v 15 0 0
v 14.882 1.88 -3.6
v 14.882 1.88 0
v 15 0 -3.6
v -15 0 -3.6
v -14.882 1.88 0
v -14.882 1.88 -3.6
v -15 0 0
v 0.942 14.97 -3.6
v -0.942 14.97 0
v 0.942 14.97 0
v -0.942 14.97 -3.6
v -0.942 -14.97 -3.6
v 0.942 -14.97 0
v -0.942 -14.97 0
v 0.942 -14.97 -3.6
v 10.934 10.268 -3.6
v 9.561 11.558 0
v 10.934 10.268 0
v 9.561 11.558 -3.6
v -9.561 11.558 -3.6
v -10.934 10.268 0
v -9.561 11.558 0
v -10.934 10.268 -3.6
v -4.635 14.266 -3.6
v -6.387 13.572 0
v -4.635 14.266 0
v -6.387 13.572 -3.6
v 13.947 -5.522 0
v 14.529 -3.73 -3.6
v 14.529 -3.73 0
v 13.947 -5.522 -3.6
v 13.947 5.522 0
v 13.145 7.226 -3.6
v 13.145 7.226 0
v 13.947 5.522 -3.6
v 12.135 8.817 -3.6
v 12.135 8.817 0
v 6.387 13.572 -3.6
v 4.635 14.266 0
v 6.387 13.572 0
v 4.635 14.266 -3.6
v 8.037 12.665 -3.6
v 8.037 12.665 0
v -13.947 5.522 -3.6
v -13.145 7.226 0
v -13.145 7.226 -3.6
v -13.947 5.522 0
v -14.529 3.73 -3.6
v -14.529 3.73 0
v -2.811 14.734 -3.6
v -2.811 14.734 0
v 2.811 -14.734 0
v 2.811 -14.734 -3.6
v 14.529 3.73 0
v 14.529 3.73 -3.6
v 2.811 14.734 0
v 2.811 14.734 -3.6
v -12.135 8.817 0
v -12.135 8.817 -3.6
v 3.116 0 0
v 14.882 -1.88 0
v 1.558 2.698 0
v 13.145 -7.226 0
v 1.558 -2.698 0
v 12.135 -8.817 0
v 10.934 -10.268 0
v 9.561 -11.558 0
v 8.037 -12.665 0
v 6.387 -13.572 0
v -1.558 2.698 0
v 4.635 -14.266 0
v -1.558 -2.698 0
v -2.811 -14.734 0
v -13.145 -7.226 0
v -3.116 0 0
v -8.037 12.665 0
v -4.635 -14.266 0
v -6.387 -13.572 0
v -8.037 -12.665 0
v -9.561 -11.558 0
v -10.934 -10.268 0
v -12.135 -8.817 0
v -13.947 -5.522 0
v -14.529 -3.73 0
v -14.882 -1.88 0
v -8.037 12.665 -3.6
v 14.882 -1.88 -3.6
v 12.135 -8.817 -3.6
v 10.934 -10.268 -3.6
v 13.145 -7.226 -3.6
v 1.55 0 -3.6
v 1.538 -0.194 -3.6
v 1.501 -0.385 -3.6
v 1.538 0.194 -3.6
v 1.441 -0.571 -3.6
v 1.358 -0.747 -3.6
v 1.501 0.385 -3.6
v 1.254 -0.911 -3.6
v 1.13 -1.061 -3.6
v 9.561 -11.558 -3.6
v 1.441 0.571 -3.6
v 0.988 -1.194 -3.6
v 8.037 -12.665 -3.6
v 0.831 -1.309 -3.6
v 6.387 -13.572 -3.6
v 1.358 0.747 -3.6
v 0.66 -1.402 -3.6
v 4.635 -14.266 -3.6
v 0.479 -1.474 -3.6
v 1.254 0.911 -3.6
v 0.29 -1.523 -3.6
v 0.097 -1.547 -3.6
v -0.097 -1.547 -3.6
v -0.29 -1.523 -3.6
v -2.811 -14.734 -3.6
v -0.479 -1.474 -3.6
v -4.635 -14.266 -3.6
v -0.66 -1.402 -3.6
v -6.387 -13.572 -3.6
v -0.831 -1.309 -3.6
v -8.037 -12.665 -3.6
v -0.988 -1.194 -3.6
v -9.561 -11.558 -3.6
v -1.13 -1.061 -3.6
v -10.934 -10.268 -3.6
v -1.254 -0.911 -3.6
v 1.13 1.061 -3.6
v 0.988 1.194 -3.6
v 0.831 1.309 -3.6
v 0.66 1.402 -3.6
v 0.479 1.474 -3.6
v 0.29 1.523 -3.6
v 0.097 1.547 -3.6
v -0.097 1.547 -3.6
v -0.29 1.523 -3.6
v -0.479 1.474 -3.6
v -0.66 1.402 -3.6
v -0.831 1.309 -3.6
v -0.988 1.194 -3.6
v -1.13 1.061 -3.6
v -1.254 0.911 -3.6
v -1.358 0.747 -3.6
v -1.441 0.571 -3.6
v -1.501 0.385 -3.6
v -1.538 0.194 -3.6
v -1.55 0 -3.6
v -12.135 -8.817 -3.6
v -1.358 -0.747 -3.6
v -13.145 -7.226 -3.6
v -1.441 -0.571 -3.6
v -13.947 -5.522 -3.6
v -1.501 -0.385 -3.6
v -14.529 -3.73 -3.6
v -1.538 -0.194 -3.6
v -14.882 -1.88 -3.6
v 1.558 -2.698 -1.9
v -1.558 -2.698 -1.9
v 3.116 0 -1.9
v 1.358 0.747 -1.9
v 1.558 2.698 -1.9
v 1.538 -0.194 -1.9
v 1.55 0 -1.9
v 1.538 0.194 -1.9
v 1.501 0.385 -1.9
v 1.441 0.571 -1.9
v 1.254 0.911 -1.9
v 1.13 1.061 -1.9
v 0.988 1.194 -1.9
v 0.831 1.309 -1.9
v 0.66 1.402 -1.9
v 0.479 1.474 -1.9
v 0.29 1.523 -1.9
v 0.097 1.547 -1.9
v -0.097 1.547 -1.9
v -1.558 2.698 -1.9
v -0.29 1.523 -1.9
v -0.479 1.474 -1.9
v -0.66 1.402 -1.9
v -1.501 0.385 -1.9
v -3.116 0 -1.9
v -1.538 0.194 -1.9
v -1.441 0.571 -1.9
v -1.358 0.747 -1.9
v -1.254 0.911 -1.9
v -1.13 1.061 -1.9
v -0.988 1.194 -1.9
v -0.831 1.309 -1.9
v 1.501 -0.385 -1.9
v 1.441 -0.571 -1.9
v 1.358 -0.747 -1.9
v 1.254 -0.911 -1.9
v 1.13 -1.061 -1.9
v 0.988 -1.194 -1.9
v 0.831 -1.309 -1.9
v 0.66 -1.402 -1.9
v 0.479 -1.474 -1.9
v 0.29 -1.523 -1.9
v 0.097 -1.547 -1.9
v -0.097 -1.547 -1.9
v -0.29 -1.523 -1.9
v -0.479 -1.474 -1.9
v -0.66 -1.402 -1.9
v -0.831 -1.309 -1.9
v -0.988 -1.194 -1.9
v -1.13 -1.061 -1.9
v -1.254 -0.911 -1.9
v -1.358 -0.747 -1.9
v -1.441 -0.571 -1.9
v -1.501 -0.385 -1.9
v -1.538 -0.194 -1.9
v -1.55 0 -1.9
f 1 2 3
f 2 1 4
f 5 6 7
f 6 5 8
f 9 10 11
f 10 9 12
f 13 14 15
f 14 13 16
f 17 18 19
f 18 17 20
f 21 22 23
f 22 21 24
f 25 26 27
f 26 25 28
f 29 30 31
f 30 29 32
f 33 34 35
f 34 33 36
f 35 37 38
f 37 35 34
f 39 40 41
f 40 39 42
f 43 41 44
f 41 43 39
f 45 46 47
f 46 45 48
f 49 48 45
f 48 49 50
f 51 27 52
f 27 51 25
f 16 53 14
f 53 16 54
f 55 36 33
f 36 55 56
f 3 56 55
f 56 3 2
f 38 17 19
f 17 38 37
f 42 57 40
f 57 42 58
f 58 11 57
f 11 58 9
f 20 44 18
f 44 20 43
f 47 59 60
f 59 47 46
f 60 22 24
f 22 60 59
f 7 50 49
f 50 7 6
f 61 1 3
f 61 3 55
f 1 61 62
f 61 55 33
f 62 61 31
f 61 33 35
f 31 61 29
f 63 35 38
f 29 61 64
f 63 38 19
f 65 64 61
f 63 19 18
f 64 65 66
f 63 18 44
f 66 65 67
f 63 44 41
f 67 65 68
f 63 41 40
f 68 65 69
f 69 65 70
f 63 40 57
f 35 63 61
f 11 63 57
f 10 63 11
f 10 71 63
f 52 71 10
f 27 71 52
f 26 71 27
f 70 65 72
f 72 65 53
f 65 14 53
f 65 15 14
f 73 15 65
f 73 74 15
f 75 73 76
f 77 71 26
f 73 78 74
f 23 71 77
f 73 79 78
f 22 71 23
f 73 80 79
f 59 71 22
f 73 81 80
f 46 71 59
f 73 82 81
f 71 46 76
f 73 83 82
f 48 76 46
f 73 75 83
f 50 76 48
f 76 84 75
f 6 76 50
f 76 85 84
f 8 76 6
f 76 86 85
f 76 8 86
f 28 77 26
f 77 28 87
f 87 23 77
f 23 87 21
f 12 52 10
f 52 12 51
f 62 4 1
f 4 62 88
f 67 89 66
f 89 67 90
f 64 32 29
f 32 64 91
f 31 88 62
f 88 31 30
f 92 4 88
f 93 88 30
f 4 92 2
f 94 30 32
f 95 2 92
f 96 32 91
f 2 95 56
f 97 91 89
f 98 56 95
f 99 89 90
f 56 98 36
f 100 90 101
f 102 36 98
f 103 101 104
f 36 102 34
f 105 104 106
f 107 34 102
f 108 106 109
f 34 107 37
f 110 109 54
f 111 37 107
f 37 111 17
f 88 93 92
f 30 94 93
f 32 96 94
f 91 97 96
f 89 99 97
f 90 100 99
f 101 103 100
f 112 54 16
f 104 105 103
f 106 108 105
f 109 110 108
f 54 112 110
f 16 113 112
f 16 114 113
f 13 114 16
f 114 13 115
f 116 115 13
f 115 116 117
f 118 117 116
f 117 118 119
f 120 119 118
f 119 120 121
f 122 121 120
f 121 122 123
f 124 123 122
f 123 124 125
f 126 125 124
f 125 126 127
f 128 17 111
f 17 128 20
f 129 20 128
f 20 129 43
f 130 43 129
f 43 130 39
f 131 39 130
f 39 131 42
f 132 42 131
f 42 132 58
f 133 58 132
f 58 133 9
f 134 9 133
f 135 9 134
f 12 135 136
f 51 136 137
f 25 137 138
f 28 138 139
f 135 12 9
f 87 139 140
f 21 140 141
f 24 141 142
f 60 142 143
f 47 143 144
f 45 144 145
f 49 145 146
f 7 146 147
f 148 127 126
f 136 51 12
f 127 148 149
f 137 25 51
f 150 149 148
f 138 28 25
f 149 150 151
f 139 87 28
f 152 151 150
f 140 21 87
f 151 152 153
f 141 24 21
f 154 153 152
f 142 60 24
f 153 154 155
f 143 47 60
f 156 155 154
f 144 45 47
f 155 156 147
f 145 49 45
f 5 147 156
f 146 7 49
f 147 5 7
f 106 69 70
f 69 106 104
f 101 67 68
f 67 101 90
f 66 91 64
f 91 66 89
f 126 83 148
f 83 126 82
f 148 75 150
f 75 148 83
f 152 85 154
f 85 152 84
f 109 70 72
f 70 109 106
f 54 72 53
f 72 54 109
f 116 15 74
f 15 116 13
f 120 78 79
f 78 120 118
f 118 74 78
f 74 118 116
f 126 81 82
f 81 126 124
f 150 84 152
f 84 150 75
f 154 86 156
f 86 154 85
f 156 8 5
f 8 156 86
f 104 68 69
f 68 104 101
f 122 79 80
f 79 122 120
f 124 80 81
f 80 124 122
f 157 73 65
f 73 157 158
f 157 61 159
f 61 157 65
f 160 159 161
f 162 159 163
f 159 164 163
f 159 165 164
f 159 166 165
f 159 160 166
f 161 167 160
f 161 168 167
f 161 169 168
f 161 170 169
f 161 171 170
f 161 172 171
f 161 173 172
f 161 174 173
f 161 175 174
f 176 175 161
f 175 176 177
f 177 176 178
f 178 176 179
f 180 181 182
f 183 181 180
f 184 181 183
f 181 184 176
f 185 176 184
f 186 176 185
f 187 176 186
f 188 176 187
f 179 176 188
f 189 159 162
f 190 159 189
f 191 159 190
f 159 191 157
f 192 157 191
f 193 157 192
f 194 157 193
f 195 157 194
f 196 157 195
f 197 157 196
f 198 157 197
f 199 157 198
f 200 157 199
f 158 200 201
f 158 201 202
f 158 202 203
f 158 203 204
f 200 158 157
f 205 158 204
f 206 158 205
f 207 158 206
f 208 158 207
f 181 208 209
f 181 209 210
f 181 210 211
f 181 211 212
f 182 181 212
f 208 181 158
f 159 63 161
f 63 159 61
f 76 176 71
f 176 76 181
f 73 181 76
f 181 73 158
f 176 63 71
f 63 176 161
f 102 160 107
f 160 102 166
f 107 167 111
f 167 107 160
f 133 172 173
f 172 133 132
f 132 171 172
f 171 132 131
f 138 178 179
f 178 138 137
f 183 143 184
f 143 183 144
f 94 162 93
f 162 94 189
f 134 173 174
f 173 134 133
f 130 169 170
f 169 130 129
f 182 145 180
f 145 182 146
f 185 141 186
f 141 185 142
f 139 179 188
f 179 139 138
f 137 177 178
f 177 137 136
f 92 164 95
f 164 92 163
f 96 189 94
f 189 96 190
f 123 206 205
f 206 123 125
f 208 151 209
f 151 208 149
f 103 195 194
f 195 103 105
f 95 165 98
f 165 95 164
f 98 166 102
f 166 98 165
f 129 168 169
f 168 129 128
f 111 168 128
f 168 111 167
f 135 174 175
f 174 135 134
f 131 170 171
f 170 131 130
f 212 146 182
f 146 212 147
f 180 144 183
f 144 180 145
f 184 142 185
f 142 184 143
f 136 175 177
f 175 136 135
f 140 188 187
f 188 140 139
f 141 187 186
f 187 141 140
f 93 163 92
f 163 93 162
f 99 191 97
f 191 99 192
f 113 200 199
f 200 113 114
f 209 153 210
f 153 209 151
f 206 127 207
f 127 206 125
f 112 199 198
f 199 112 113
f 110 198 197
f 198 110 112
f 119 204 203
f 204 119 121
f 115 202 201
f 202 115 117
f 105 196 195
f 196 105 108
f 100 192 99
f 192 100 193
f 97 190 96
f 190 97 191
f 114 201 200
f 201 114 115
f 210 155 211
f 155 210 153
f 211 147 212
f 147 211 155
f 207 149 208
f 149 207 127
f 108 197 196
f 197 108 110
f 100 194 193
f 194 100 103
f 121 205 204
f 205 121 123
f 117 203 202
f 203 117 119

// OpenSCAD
$fn = 50;


difference() {
	union() {
		translate(v = [0, 0, -3.6000000000]) {
			cylinder(h = 3.6000000000, r = 15.0000000000);
		}
		translate(v = [0, 0, -2.1000000000]) {
			cylinder(h = 2.1000000000, r = 2.8750000000);
		}
	}
	union() {
		translate(v = [0, 0, 0]) {
			rotate(a = [0, 0, 0]) {
				difference() {
					union() {
						translate(v = [0, 0, -1.9000000000]) {
							linear_extrude(height = 1.9000000000) {
								polygon(points = [[3.1158000000, 0.0000000000], [1.5579000000, 2.6983619531], [-1.5579000000, 2.6983619531], [-3.1158000000, 0.0000000000], [-1.5579000000, -2.6983619531], [1.5579000000, -2.6983619531]]);
							}
						}
					}
					union();
				}
			}
		}
		#translate(v = [0, 0, -100.0000000000]) {
			cylinder(h = 200, r = 1.5500000000);
		}
	}
}
